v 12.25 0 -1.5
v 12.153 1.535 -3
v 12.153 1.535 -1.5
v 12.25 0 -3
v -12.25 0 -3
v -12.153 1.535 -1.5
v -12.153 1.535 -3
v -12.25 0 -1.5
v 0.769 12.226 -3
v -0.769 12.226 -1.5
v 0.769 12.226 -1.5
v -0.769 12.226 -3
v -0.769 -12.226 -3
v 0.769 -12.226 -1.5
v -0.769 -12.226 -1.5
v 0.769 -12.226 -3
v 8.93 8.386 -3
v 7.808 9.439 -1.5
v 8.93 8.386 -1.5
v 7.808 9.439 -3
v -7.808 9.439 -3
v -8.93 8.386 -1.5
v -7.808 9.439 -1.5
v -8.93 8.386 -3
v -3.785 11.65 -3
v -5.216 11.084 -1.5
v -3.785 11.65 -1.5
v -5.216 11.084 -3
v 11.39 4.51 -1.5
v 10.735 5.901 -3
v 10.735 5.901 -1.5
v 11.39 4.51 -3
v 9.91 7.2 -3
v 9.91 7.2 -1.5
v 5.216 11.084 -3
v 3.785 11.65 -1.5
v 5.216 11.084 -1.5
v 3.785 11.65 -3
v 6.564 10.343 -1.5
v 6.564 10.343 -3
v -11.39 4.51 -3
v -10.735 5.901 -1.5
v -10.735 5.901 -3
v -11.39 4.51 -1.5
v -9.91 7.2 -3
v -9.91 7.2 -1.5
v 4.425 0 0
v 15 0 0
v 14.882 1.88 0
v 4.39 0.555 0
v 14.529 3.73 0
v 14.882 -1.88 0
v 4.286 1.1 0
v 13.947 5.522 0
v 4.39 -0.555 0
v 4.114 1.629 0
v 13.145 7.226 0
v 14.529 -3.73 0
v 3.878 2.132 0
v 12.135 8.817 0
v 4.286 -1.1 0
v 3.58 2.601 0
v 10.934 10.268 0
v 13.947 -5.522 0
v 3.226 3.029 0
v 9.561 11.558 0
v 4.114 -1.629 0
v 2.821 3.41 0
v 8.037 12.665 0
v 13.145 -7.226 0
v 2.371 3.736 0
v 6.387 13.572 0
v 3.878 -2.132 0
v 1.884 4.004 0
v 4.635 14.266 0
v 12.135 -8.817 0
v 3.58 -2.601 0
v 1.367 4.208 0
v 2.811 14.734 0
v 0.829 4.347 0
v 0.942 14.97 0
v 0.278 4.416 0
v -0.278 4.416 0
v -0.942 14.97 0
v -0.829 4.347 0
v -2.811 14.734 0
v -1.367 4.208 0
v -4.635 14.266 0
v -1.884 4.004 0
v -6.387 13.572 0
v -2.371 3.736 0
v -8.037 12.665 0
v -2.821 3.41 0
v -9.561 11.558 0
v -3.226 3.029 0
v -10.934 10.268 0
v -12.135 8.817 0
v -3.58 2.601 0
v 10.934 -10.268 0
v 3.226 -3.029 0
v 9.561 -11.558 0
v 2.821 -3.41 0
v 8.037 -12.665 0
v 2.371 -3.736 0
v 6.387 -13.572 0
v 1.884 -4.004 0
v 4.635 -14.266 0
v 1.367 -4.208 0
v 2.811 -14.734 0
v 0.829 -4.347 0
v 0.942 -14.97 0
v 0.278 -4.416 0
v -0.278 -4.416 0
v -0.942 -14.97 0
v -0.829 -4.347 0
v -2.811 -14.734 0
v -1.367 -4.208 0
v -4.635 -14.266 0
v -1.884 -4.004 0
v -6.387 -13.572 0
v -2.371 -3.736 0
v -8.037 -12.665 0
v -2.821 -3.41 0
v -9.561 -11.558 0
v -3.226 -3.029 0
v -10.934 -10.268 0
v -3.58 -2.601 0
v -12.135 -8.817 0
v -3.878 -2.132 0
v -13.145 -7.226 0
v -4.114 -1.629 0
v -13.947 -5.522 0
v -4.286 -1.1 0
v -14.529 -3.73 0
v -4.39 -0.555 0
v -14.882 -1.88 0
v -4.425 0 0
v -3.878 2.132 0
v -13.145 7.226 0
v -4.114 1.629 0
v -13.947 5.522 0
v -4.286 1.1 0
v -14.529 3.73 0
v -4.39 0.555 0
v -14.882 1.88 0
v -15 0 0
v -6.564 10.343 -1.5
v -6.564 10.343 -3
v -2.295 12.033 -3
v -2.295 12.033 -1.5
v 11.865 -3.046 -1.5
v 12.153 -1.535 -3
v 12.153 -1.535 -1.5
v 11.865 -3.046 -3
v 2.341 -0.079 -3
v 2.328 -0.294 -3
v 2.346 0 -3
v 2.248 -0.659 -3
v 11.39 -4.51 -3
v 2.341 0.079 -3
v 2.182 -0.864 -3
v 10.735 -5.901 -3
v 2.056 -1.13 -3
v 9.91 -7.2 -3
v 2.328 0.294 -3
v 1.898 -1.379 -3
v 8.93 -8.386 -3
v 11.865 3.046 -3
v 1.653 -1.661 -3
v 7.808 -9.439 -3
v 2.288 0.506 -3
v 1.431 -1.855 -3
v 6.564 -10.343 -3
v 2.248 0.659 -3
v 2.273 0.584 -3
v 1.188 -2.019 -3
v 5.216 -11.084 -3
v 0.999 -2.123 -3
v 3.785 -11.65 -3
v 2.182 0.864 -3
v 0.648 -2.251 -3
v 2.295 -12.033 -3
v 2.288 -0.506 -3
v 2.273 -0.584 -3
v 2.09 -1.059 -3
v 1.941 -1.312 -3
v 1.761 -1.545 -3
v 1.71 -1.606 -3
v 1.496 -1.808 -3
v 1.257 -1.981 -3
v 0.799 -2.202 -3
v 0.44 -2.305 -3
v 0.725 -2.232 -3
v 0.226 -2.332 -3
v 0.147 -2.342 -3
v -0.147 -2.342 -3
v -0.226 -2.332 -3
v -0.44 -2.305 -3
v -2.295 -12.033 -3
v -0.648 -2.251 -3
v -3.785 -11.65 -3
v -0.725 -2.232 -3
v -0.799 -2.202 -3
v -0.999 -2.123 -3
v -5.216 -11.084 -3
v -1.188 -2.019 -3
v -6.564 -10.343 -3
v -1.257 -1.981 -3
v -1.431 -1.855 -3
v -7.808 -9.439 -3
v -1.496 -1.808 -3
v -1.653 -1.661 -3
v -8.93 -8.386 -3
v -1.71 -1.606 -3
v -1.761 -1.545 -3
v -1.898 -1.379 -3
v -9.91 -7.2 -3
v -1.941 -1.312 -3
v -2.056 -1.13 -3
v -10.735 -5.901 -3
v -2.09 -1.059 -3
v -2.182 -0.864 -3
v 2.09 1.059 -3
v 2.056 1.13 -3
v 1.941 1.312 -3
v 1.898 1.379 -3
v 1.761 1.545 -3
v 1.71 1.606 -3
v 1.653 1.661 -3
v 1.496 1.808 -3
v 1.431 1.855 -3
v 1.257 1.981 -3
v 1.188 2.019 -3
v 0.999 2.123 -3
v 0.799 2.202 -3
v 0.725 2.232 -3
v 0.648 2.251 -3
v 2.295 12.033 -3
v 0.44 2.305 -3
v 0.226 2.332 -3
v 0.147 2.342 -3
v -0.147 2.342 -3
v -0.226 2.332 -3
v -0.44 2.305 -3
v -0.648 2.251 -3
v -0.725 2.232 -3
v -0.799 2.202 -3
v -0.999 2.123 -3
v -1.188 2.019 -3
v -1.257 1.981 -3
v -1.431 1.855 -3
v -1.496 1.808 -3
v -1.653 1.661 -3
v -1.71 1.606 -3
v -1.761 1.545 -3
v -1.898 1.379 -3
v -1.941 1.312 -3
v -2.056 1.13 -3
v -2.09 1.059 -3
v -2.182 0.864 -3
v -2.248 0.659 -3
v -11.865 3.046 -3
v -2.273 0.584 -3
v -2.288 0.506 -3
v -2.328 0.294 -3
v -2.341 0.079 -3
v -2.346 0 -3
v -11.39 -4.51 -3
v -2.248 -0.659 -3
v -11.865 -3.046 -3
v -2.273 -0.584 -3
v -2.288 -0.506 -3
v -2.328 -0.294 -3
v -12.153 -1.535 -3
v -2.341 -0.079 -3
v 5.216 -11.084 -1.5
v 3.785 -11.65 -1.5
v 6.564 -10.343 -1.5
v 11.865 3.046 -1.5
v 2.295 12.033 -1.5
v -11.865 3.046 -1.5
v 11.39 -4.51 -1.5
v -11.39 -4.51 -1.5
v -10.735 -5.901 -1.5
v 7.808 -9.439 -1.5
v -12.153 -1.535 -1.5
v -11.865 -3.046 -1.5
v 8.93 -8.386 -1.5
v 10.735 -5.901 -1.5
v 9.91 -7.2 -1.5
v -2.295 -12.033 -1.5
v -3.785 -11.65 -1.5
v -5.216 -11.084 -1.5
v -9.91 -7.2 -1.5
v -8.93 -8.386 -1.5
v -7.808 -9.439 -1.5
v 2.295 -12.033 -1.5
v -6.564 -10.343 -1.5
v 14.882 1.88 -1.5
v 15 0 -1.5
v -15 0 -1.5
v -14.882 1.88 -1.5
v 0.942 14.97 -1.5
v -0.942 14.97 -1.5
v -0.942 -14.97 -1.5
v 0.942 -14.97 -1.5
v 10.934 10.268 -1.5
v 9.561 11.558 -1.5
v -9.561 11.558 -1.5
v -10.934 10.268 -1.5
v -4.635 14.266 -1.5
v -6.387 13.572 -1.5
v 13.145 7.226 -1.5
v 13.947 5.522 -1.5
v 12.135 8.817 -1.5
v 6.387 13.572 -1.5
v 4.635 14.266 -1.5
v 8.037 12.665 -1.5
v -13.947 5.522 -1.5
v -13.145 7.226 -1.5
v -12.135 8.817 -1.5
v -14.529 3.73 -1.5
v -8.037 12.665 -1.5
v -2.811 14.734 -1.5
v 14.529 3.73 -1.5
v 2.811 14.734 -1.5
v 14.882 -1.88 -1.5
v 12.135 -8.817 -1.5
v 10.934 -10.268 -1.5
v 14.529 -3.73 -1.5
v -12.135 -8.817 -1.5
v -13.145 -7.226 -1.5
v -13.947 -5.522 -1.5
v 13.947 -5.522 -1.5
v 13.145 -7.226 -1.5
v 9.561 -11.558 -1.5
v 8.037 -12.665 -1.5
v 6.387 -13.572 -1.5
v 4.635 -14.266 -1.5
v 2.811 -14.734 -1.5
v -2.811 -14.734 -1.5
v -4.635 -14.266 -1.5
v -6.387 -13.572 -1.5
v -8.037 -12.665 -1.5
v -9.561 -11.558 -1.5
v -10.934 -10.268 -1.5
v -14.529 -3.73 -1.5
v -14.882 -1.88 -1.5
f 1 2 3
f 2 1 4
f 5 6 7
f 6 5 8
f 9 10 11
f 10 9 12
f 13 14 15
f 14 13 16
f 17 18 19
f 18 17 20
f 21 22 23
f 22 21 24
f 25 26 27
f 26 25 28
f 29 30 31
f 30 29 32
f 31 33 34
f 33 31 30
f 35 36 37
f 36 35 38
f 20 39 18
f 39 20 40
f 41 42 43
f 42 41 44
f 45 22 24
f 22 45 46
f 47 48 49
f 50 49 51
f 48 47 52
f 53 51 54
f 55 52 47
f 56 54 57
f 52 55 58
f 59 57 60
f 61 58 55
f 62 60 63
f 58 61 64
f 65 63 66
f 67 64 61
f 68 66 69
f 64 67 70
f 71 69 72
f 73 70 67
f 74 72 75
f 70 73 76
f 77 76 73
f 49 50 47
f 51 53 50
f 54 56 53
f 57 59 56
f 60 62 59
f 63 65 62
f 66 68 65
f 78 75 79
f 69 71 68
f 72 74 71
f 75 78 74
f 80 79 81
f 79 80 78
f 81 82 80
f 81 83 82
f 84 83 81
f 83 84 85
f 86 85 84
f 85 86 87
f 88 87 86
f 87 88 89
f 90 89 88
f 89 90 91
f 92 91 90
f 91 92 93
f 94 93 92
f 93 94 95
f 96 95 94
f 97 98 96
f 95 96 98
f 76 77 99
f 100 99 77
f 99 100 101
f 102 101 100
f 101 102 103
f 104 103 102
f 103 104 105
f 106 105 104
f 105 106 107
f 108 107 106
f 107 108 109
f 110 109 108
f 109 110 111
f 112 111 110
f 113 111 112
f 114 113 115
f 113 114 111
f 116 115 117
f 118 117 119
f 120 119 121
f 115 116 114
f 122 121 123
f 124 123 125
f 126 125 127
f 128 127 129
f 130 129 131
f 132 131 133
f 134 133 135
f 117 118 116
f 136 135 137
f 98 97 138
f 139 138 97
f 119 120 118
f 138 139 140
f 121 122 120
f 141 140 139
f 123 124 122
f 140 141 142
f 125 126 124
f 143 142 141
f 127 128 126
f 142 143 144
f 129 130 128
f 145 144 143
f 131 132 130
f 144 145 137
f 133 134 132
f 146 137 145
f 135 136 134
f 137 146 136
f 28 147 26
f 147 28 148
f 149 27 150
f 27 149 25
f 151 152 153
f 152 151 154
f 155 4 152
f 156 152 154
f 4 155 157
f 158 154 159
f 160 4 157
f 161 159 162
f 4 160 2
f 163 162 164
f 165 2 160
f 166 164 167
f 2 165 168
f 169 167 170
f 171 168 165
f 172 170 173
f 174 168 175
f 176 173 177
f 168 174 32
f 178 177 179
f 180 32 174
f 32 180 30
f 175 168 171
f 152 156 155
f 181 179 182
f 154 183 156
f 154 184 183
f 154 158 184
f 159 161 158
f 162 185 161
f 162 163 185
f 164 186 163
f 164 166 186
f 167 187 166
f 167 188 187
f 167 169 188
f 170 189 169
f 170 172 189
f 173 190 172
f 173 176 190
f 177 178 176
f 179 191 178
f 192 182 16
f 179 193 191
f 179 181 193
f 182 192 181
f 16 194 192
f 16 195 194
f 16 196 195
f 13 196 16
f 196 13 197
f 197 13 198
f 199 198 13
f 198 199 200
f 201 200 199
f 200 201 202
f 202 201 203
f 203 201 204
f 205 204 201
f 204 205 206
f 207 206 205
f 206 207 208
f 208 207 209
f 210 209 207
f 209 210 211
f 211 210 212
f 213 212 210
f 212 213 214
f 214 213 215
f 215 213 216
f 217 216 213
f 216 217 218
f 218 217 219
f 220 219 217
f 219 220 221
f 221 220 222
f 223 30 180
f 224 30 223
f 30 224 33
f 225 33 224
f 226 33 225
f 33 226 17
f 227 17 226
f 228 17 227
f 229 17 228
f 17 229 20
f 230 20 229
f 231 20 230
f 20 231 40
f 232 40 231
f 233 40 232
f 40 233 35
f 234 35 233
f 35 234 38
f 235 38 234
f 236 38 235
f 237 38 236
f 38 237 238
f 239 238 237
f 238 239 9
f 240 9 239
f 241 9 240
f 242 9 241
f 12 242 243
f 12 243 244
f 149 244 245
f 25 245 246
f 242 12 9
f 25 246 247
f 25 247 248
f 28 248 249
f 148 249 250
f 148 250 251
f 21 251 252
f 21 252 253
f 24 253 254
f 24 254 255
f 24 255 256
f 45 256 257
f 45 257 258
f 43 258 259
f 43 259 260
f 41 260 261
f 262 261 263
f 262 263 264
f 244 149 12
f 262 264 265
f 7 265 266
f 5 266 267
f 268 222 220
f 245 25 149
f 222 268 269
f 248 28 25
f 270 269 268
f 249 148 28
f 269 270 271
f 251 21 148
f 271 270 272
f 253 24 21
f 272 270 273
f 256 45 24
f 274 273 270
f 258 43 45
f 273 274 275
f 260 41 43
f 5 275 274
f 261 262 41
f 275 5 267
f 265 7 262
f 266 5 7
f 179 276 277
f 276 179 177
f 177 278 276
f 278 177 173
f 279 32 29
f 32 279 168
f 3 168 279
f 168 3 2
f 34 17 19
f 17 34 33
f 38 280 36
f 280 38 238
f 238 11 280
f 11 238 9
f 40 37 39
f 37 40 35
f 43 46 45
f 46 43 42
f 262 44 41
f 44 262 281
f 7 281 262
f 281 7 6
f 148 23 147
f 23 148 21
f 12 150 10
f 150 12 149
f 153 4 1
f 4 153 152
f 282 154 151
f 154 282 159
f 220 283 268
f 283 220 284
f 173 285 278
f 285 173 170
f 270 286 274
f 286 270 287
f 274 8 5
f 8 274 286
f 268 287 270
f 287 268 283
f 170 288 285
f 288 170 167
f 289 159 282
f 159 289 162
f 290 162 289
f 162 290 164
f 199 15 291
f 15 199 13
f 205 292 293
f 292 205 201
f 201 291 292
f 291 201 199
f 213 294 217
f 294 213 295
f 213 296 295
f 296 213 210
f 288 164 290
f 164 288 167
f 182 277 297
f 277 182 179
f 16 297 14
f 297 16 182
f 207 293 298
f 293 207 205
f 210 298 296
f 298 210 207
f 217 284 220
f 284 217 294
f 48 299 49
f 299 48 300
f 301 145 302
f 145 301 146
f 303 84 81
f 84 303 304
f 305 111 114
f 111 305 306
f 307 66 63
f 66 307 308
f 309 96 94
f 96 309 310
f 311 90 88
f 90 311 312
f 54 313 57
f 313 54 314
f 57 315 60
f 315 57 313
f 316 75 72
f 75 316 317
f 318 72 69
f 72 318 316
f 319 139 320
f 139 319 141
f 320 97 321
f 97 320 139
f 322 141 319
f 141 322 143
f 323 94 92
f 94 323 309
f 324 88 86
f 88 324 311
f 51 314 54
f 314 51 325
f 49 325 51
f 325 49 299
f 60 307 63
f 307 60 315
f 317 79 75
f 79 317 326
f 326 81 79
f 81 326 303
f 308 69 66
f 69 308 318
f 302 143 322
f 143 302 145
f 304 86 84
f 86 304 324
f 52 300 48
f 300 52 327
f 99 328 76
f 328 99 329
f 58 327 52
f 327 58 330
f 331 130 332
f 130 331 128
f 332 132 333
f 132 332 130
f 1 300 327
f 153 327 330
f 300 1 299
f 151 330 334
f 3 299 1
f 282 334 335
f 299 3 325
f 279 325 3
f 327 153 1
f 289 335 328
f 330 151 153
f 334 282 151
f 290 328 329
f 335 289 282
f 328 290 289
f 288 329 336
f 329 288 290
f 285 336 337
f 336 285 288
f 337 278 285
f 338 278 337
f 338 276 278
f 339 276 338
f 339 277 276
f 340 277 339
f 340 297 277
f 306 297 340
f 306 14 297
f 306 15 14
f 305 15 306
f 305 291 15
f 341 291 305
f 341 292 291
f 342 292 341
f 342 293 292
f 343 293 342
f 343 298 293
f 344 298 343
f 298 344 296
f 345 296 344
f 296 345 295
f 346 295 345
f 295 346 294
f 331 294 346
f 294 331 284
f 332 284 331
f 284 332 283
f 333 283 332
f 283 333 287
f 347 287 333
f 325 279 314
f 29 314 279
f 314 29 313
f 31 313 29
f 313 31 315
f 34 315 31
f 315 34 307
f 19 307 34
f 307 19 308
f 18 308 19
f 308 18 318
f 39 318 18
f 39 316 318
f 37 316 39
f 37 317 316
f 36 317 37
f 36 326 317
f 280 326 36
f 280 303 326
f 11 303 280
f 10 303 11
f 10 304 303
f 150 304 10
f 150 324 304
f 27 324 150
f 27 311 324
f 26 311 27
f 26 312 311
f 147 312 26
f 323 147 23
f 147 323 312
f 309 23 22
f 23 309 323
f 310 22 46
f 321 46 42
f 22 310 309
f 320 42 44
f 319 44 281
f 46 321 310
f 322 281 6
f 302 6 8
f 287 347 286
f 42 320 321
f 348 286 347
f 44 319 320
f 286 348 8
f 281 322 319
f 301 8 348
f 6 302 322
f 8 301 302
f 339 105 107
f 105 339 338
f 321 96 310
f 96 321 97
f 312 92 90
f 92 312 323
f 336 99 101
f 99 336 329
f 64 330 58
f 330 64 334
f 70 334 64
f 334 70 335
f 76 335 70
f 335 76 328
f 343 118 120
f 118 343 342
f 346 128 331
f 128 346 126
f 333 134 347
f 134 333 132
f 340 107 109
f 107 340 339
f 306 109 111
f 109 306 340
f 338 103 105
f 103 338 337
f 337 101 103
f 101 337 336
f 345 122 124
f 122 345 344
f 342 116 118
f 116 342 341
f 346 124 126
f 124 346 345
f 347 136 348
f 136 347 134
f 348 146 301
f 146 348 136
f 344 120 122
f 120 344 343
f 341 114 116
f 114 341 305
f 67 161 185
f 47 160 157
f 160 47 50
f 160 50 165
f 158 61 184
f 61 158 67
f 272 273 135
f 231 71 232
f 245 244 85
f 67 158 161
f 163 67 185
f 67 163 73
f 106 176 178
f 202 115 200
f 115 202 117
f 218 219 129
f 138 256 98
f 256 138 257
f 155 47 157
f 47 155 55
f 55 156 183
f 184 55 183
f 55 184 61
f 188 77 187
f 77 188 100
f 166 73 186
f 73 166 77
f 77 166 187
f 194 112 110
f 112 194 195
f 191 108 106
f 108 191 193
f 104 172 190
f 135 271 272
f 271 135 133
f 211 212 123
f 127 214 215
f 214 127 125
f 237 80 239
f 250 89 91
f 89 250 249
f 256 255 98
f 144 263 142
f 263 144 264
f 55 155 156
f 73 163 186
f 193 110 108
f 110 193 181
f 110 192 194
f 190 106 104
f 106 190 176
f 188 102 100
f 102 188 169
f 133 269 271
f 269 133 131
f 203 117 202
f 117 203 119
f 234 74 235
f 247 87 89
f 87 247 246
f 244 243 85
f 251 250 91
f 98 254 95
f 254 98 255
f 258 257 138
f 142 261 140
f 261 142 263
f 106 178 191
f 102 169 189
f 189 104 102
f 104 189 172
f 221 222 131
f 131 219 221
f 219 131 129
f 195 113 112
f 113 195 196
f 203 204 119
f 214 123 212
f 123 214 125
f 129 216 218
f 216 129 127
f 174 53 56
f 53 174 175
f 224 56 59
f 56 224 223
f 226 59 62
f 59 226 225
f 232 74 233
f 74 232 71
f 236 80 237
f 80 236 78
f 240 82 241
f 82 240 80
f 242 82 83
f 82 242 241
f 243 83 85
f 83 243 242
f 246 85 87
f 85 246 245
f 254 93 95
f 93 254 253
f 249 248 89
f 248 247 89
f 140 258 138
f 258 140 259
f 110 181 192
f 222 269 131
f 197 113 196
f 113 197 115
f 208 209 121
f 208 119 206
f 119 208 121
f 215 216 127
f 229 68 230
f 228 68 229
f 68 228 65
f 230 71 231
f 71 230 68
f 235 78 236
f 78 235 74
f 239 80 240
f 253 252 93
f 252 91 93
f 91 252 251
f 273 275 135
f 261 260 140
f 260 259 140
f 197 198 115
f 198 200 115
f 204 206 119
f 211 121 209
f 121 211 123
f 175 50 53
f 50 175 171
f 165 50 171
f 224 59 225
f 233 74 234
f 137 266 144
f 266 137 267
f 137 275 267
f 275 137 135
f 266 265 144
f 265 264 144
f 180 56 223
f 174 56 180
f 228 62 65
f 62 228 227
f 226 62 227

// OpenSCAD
$fn = 50;


difference() {
	union() {
		translate(v = [0, 0, -3.0000000000]) {
			cylinder(h = 3, r = 12.2500000000);
		}
		translate(v = [0, 0, -1.5000000000]) {
			cylinder(h = 1.5000000000, r = 15.0000000000);
		}
	}
	union() {
		translate(v = [0, 0, 0]) {
			rotate(a = [0, 0, 0]) {
				difference() {
					union() {
						#translate(v = [0, 0, -350.0000000000]) {
							cylinder(h = 200, r = 2.0000000000);
						}
						#translate(v = [0, 0, -350.0000000000]) {
							cylinder(h = 200, r = 2.1250000000);
						}
						#translate(v = [0, 0, -3.5000000000]) {
							cylinder(h = 3.5000000000, r1 = 2.0000000000, r2 = 4.4250000000);
						}
						#translate(v = [0, 0, -350.0000000000]) {
							cylinder(h = 200, r = 2.0000000000);
						}
					}
					union();
				}
			}
		}
	}
}
